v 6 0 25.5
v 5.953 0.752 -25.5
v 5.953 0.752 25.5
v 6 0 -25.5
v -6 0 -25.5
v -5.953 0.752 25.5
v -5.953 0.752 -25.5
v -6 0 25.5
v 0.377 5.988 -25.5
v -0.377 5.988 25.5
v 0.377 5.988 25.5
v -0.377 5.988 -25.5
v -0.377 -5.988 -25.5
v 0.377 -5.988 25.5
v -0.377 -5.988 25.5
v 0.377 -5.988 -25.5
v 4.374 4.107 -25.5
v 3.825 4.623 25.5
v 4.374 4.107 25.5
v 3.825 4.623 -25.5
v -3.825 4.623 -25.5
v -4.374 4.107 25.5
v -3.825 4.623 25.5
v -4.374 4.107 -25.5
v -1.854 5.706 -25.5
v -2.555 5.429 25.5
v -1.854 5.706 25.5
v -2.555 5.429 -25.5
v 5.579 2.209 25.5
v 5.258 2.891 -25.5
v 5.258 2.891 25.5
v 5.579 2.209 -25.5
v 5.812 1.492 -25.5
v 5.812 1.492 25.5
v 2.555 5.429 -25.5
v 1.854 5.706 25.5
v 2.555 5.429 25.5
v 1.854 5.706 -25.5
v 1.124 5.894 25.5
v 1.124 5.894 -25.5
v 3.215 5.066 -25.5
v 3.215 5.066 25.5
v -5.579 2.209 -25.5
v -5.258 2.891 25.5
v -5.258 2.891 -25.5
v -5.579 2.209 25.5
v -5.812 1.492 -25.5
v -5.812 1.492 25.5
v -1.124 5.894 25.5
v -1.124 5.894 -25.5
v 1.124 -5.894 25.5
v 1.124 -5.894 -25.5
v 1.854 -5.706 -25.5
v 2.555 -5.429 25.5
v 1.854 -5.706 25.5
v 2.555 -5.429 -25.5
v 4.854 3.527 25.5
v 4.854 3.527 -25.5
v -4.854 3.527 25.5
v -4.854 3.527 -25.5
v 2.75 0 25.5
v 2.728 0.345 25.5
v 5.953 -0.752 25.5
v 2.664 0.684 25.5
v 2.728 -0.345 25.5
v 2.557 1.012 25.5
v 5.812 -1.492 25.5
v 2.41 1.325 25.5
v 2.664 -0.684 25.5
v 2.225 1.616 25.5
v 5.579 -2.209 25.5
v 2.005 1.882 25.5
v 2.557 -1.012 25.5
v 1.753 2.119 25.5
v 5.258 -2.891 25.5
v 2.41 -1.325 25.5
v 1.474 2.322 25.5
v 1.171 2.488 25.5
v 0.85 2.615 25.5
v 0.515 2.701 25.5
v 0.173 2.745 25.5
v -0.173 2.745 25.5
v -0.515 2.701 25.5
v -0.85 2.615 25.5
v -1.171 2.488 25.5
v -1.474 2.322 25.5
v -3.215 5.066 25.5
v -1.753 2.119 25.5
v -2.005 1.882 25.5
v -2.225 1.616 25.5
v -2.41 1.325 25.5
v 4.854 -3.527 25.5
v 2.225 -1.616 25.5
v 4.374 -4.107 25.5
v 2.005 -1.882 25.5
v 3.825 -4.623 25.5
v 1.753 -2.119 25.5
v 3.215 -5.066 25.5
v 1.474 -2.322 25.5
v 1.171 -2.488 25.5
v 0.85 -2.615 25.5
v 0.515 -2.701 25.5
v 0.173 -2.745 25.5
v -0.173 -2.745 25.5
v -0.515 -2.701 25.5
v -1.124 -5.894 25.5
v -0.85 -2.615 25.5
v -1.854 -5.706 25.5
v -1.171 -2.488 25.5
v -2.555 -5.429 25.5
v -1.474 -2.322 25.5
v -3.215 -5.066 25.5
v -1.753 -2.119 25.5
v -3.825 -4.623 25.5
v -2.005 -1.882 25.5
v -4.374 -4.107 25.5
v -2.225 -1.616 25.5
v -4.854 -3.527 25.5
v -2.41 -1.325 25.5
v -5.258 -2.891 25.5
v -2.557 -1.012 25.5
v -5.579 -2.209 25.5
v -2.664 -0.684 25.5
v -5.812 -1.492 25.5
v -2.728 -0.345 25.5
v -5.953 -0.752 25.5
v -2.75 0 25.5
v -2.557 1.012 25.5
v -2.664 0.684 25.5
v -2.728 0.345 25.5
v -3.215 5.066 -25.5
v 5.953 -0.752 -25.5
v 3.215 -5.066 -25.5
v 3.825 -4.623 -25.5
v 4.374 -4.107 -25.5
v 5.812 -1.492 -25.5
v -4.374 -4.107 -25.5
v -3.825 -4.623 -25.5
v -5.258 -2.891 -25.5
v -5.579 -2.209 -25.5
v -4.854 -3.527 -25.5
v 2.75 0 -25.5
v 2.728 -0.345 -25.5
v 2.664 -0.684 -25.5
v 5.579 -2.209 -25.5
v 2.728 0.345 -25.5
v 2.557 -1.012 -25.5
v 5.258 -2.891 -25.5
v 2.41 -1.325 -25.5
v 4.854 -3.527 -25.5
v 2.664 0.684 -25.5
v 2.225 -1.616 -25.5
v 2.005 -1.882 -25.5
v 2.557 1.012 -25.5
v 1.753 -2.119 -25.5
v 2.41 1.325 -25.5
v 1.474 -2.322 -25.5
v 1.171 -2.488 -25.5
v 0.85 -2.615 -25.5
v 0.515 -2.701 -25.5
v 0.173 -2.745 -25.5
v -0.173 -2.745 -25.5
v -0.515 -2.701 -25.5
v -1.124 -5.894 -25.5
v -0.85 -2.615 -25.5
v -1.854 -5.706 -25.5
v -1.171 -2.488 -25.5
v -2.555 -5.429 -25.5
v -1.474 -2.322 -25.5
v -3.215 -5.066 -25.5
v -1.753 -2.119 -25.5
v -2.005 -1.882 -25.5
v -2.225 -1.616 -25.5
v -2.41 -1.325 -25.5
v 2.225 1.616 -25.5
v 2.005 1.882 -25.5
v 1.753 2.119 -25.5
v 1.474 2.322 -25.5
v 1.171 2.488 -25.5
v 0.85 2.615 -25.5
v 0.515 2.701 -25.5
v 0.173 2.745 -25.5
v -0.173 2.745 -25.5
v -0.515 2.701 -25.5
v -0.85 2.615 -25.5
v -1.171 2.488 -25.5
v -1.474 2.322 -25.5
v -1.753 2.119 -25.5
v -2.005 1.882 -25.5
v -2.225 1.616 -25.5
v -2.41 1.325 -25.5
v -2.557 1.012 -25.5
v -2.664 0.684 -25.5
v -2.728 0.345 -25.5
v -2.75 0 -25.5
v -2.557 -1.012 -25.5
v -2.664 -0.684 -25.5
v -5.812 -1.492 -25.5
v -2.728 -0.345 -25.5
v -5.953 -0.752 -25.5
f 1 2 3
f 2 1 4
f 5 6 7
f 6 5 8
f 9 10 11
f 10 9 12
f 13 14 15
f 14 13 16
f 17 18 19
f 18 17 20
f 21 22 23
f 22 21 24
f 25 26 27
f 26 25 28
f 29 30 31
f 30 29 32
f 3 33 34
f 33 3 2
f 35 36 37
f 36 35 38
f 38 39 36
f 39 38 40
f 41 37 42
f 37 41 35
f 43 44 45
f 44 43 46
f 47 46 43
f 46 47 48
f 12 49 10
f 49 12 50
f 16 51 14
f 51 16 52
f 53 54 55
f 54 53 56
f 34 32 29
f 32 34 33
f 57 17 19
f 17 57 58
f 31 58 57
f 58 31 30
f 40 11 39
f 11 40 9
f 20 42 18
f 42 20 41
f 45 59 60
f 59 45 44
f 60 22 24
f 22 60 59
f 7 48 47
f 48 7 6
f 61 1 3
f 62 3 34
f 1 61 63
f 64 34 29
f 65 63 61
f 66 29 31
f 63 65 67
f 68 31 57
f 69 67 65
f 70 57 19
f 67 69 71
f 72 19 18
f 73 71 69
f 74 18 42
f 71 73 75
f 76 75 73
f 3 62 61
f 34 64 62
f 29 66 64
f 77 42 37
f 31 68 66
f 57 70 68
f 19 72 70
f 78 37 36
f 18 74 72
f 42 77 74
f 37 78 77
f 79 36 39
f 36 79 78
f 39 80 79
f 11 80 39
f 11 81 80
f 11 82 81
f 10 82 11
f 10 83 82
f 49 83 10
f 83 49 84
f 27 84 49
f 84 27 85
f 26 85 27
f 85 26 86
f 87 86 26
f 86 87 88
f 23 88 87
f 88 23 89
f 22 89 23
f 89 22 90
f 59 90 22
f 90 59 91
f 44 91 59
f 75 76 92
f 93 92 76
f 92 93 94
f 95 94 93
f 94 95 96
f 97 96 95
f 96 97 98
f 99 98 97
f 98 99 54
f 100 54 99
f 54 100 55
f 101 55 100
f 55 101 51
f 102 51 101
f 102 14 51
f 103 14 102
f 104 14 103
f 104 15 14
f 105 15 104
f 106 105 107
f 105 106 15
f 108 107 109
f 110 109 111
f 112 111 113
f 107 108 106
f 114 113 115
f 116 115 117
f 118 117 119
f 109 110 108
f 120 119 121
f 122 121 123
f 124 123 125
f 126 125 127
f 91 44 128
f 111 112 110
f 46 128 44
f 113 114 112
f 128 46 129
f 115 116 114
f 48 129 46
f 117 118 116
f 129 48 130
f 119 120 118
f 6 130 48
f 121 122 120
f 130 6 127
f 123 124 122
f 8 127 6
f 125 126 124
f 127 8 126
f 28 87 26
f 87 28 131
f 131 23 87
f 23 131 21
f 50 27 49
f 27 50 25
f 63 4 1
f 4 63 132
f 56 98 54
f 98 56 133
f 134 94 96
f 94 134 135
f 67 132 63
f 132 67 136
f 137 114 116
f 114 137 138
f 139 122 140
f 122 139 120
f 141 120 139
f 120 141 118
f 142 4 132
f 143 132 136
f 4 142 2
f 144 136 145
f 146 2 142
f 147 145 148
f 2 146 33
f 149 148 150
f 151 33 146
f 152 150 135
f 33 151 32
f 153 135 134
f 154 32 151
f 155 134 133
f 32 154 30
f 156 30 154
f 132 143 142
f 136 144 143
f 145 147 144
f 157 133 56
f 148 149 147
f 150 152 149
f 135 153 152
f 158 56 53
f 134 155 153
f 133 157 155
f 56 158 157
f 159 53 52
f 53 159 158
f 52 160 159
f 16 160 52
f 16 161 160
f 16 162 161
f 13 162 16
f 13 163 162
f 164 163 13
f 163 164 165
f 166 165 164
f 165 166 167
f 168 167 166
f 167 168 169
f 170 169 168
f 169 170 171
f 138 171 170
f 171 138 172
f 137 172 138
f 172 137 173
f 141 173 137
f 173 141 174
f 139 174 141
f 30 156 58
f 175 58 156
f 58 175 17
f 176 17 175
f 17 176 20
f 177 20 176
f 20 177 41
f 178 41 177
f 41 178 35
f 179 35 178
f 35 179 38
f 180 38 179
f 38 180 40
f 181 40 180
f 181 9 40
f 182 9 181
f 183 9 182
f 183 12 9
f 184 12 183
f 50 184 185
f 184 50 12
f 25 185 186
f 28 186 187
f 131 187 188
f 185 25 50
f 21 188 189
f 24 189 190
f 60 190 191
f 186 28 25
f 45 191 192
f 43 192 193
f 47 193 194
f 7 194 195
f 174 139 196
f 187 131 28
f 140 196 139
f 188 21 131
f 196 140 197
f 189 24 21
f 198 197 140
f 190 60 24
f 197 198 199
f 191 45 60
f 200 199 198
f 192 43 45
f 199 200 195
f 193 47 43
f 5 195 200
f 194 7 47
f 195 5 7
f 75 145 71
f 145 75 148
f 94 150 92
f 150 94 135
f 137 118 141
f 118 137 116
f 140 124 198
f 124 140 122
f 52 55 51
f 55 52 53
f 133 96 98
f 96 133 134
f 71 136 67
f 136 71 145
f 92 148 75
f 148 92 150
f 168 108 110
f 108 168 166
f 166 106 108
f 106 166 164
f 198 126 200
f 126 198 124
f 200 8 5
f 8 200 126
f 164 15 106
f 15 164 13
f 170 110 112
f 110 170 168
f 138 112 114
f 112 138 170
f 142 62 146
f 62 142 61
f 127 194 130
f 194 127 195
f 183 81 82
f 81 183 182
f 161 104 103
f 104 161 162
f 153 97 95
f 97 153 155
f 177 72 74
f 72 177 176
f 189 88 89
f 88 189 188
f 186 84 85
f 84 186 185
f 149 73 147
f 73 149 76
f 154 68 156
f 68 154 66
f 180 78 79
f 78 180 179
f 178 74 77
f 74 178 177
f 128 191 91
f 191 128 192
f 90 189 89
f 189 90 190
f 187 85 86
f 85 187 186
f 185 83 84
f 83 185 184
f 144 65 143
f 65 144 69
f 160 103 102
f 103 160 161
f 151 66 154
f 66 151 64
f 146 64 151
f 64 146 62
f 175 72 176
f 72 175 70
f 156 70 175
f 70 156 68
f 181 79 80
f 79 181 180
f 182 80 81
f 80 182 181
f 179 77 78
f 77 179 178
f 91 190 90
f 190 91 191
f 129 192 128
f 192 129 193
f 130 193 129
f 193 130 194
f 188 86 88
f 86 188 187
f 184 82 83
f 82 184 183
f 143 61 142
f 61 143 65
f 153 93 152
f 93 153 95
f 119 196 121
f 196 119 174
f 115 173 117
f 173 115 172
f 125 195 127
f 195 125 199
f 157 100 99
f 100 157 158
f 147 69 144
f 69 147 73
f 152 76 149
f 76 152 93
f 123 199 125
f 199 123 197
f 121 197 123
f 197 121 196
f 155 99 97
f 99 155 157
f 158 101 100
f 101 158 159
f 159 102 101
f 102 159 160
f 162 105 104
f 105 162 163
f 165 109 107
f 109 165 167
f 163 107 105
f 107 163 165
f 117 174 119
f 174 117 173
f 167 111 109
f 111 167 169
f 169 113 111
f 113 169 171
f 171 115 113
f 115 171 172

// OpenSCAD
$fn = 50;


difference() {
	union() {
		translate(v = [0, 0, -25.5000000000]) {
			cylinder(h = 51, r = 6.0000000000);
		}
	}
	union() {
		translate(v = [0, 0, -100.0000000000]) {
			cylinder(h = 200, r = 2.7500000000);
		}
	}
}
